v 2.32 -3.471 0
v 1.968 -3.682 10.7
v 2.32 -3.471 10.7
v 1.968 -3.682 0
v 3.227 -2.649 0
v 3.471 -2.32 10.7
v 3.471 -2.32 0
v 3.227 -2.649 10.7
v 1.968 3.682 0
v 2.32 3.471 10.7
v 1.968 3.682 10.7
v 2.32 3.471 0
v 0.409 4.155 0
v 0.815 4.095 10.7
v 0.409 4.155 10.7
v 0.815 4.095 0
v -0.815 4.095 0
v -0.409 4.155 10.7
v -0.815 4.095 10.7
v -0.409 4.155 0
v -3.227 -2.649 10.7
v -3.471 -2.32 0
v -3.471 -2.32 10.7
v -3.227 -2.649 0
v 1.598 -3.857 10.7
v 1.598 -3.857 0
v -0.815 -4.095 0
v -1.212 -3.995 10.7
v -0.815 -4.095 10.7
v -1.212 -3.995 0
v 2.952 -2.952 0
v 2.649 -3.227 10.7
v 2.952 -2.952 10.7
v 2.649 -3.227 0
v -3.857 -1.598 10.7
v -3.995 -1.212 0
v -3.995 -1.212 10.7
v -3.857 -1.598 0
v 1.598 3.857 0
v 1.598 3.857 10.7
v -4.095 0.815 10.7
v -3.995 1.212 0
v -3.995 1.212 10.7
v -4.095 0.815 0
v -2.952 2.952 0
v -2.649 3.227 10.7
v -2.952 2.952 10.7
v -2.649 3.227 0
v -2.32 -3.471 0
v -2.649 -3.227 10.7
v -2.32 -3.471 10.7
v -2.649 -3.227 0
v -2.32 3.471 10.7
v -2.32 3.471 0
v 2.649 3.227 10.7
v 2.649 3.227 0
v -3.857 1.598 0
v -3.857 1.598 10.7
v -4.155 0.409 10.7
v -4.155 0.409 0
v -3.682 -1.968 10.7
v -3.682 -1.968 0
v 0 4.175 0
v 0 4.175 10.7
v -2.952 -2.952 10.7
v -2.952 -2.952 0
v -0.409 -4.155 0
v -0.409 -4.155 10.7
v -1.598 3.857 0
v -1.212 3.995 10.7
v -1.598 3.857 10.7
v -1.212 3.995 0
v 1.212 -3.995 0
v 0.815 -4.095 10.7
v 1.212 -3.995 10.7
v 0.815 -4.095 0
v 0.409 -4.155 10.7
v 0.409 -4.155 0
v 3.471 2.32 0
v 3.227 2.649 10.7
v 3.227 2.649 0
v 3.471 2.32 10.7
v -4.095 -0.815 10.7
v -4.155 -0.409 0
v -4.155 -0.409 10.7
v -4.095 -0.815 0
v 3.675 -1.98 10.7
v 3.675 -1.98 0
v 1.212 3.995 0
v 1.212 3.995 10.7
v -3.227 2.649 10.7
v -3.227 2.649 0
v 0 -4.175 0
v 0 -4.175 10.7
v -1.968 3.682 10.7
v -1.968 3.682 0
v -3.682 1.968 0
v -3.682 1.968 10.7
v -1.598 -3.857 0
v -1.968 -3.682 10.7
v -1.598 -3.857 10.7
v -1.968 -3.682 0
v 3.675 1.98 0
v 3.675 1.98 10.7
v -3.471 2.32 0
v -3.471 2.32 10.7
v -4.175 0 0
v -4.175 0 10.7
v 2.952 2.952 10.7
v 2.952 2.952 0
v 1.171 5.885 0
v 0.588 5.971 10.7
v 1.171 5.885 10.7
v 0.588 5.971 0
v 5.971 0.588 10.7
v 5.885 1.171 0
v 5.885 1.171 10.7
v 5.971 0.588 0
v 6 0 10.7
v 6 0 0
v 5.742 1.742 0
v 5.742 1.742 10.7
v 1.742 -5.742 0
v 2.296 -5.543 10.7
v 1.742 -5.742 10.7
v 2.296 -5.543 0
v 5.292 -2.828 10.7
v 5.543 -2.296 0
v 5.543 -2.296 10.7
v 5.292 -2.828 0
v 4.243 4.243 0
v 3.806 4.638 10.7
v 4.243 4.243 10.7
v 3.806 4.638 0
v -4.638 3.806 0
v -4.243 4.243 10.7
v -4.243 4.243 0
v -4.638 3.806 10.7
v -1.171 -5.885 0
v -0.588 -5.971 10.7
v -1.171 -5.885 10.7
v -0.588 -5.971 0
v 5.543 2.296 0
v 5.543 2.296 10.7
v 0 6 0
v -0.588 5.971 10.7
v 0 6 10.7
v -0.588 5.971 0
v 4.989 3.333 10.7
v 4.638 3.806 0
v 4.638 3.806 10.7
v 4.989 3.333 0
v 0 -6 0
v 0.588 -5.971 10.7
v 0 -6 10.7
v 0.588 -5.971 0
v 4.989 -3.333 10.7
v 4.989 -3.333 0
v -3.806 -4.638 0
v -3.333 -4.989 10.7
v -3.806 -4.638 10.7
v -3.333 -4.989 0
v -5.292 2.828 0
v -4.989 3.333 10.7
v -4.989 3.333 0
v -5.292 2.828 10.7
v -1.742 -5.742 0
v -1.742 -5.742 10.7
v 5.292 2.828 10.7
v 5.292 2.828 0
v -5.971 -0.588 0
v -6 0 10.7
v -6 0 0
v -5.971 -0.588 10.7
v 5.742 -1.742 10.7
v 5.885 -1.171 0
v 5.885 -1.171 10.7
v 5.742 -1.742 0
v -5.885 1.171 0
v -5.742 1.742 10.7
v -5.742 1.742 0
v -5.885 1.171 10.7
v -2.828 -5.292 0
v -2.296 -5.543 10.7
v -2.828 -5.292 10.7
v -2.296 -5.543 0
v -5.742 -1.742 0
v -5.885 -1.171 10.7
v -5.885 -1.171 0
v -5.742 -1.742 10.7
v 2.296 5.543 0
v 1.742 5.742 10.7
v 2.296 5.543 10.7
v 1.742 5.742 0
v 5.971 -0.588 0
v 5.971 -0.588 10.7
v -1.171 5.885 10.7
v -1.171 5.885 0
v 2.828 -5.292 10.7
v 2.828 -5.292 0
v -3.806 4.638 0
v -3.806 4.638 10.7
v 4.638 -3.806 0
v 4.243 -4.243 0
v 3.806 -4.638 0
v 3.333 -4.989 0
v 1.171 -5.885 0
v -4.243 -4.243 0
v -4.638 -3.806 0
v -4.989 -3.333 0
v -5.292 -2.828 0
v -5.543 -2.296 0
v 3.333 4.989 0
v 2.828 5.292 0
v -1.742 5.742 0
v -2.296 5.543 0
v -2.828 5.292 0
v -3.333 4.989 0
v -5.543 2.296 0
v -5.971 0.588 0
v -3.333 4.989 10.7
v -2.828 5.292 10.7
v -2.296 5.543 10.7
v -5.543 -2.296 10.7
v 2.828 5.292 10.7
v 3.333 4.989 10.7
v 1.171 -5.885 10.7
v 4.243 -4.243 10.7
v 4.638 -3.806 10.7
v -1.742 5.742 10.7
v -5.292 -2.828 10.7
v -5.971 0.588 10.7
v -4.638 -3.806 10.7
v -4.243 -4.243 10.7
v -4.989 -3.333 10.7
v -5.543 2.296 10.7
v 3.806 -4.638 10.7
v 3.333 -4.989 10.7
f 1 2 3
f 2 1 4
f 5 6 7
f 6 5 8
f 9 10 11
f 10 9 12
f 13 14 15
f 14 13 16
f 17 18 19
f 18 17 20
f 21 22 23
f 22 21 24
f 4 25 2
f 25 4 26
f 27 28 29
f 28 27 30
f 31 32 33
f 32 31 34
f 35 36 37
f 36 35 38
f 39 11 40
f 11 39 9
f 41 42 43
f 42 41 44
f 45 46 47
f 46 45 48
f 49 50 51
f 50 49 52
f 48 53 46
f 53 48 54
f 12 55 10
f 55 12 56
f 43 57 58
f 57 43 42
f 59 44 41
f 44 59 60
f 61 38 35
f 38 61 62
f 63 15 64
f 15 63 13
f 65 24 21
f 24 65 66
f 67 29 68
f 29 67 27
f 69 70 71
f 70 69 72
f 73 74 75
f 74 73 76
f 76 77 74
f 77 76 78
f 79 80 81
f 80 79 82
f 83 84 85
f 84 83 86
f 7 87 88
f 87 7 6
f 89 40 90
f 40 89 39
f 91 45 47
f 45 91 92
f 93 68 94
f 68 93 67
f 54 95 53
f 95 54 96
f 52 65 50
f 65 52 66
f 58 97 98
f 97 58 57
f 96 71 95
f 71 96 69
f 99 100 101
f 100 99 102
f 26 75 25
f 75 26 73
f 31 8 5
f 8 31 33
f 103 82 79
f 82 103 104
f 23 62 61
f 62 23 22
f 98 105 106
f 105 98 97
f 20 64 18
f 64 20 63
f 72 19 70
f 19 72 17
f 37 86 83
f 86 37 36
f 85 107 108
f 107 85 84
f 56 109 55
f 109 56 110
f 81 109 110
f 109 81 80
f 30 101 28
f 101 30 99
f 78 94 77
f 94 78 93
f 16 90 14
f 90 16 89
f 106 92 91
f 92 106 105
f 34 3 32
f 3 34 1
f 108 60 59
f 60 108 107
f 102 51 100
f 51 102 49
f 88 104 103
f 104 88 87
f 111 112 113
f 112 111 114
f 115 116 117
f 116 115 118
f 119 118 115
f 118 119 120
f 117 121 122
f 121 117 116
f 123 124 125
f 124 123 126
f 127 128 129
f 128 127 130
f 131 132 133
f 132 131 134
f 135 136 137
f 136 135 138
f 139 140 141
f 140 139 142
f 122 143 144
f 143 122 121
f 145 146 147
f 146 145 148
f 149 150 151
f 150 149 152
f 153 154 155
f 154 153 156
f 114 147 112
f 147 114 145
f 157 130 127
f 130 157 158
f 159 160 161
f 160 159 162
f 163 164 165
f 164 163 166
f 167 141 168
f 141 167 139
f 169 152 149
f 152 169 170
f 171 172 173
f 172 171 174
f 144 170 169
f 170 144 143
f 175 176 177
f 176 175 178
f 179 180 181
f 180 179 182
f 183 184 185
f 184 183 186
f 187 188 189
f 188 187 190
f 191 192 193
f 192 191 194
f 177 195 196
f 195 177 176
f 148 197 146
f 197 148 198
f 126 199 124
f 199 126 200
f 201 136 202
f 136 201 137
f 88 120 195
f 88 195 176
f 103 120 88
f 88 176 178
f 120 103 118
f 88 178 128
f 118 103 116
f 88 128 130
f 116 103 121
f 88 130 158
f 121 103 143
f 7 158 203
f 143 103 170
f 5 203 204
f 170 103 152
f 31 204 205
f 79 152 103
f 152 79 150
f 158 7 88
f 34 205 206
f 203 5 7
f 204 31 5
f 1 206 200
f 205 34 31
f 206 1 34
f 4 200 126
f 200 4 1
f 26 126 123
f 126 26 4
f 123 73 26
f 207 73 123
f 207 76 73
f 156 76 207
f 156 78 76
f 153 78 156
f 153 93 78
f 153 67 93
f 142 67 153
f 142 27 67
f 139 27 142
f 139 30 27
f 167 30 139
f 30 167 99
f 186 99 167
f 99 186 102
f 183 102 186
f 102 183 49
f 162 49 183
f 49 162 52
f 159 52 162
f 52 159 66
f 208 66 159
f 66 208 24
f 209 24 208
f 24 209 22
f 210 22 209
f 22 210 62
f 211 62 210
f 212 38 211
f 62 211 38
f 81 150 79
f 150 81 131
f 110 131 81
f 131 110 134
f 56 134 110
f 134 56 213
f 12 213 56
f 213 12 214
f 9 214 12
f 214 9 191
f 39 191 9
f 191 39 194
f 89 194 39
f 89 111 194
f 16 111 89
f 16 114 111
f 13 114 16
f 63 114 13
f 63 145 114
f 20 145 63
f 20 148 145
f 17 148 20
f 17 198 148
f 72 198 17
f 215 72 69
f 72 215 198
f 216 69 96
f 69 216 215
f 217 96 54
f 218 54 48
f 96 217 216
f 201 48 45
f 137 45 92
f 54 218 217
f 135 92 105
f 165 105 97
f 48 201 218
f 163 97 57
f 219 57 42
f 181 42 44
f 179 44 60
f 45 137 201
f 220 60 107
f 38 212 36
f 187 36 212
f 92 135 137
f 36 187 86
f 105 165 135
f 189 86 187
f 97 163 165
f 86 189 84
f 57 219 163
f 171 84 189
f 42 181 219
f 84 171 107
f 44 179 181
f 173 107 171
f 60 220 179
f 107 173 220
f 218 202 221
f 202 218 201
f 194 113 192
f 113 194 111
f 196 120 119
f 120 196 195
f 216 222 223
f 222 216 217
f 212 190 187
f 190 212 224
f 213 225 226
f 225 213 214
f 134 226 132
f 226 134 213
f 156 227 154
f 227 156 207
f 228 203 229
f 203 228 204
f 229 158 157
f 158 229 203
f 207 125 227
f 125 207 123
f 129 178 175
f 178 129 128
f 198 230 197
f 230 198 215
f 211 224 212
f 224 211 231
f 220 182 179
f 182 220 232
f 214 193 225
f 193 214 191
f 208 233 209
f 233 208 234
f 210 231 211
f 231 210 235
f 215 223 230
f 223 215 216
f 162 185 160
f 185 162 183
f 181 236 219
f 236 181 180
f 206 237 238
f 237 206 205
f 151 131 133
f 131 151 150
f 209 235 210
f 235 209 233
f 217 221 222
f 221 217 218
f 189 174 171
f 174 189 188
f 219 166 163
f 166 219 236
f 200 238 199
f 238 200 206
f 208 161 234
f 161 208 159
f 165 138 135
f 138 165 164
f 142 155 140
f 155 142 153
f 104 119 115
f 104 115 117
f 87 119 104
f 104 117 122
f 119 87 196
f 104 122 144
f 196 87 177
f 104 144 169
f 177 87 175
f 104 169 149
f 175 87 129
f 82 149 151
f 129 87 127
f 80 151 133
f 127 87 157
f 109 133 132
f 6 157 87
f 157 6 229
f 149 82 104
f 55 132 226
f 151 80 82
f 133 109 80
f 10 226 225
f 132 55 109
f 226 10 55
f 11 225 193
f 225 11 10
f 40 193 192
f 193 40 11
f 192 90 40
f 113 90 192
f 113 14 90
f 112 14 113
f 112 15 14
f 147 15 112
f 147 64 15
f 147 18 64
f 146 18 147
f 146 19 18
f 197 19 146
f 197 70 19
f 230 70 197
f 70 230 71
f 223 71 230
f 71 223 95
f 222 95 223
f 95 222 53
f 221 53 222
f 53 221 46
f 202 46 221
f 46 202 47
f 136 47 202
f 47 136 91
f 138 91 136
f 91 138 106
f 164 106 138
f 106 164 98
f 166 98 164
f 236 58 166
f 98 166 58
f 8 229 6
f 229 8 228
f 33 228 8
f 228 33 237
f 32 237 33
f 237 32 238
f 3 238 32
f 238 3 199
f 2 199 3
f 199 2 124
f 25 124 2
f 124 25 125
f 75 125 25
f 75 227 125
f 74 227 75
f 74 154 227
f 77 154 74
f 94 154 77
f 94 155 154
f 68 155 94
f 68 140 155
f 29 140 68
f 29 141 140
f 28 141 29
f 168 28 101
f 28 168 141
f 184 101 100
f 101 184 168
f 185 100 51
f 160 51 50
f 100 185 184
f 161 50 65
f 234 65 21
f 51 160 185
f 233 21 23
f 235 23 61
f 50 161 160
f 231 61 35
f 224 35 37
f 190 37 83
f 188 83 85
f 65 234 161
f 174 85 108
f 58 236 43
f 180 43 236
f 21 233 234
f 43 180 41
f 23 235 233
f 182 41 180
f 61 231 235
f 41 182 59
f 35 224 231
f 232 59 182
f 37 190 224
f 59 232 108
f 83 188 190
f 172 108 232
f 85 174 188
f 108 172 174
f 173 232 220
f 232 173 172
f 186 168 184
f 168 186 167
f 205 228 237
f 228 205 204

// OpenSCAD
// file: parameters.scad
// =============================================================================
// Gen-BO — nightly 2026-10-07 (physics_scorer, honest magpylib watts)
// Flush seat + wider copper + tight assists: the magnets sit on the steel in 5.00 mm through-pockets (carrier = magnet height, recess 0 instead of 0.10 mm), so the magnet faces are 0.2 mm closer while still exactly 0.50 mm from the wound envelope; the bobbin lip beyond the copper is trimmed 1.0 → 0.8 mm (still the 0.8 mm wall minimum, stator web still 1.2 mm), which widens each copper sector by ~0.6° on 28–70 mm × 18.0 mm-build bobbins; and the diametric Ø5 assists are pulled in to R43/50/57 (±7 mm) where they add most flux under the copper. Same Ø134 × 4.76 mm steel discs as Gen-BL.
// Clocking 0 deg (magnets N facing S) + D-flat keyed bore + index notch + flip-symmetric hole map.
// Windable 2-piece bobbin; turns = physics_scorer turns_fit; copper only between flanges.
// Steel back-iron: 2× Ø134 × 4.76 mm (3/16") mild-steel discs (steel_backiron_disc.dxf); magnets sit ON the steel
// (through-pockets) -> score with --back-iron.
// =============================================================================
topology            = "dual_rotor";

// --- Wire / winding (physics_scorer winding-fit) -------------------------------
wire_awg            = 26;
wire_od             = 0.45;     // insulated OD mm (bare 0.405)
fill_realistic      = 0.65;     // insulated-wire area / window (DENSE layered wind with a jig; scorer cap 0.65)
turns               = 595;       // = physics_scorer turns_fit (do NOT raise)
coil_former_type    = "bobbin";
coil_core_inset     = 18.00;     // radial copper build: hub = copper boundary inset by this
wind_build_axial    = 0.0;      // nothing proud of the flanges
wind_build_radial   = 0.0;

// --- Bobbin (base + lid) ---------------------------------------------------------
coil_id_r           = 28.00;    // copper boundary sector
coil_od_r           = 70.00;
span_deg            = 53.24;    // = pitch - 2*asin((wall+0.85)/coil_id_r) -> >=1.2 mm stator web
former_web          = 8.10;     // copper height between flanges (TALL copper: steel keeps Bz up)
flange_t            = 0.80;     // >= 0.8 mm FDM wall rule (tall winds push on the flanges)
wall                = 0.80;     // flange lip beyond copper
former_bare_h       = former_web + 2 * flange_t;
coil_envelope_h     = former_bare_h + 2 * wind_build_axial;
tab_w               = 7.0;
tab_len             = 7.0;
tab_h               = former_bare_h / 2;
pin_d               = 1.9;      // 1.75 mm filament locating pin
coil_mount_r        = coil_od_r + 0.2 + 4.0;
lead_y              = 1.6;
lead_slot_w         = 0.9;
lead_groove_d       = 0.6;

// --- Gap -------------------------------------------------------------------------
run_clear           = 0.50;     // rotor face -> flange
gap_spacer_h        = run_clear + wind_build_axial;
m2m                 = coil_envelope_h + 2 * run_clear;   // rotor face to rotor face (= gap_sleeve length)

// --- Stator ----------------------------------------------------------------------
coil_stations       = 6;
bay_clear           = 0.25;
stator_thick        = former_bare_h;                        // bobbins flush both faces
stator_od           = 158;
shaft_clear_stator  = 14.0;     // stator is static; gap sleeve OD 12 spins inside

// --- Rotor(s) --------------------------------------------------------------------
magnet_Br           = 1.43;     // N52
magnet_d_large      = 20.0;
magnet_h_large      = 5.0;      // one O20x5 per pocket
magnet_h_small      = 5.0;      // one O5x5 per pocket
halbach_magnetisation = "diametric"; // O5x5 assist magnets MUST be DIAMETRICALLY magnetised (tangential)
rotor_b_same_axis   = true;     // same-index magnets share one axis: N faces S across the gap
large_pocket_d      = 20.3;
small_pocket_d      = 5.3;
pocket_h            = 5.00;     // THROUGH the carrier: magnet back face sits on the steel disc (FLUSH seat: carrier = magnet height, magnet face level with the rotor face)
large_n             = 8;
R_large             = 50.0;
R_small_inner       = 43.0;
R_small_mid         = 50.0;
R_small_outer       = 57.0;
small_r_list        = [R_small_inner, R_small_mid, R_small_outer];   // O5 pockets between poles
carrier_od          = 134.0;
carrier_thick       = pocket_h;
hub_h               = 12.0;     // > steel_t + insert: radial set-screw clears the steel
hub_od              = 24.0;     // slim hub so the M4 brace rods fit at R~18 inside the coil ring
hub_insert_d        = 4.0;      // M3 heat-set insert, radial, bears on the D-flat
rotor_b_offset_deg  = 0.0;      // CLOCKING: magnets directly opposite
shaft_key           = "dflat";
dflat_depth         = 0.5;      // 8 mm shaft with 0.5 mm flat (7.5 across flat)
index_notch_d       = 3.0;

// --- Steel back-iron (buyable laser-cut) -------------------------------------------
steel_t             = 4.76;      // mild steel thickness (image method ignores it; sized from steel_flux.py so the return path stays well below saturation)
steel_center_hole   = 26.0;     // slips over the rotor hub (OD 24)
steel_od            = carrier_od;   // steel disc OD = rotor carrier OD

// --- Modular MAX interface ----------------------------------------------------------
shaft_bore          = 8.35;
dflat_x             = 4.0 - dflat_depth + (shaft_bore - 8.0) / 2;
bearing_d           = 21.85;
bearing_h           = 7.2;
m3_clear            = 3.5;
bolt_r_inner        = 30.0;     // M3 steel-disc clamp bolts (inside the magnet ring)
bolt_n_inner        = 4;
bolt_inner_angles   = [0, 90, 180, 270];
bolt_r_outer        = 63.0;     // M3 steel-disc clamp bolts (outside the magnet ring)
bolt_outer_angles   = [45, 135, 225, 315];
flange_bolt_r       = 73.0;     // frame rods: OUTSIDE the rotor OD (rotors spin inside them)
flange_bolt_n       = 6;
flange_bolt_offset  = 30.00;    // between coil stations -> never cuts a lead groove/tab
brace_r             = 18.0;
brace_d             = 4.3;      // temporary M4 jack rods (assembly only)
brace_n             = 4;
brace_angles        = [45, 135, 225, 315];          // flip-symmetric

spacer_pad_od       = 14.0;
spacer_pad_id       = m3_clear;
endbell_od          = 158;
endbell_thick       = 8.0;
endbell_shaft_clear = 10.0;
collar_h            = 10.0;
standoff_od         = 9.0;
frame_standoff_h    = run_clear + carrier_thick + hub_h + collar_h + 2.0;
sleeve_od           = 12.0;
plate_max_mm        = 410;

$fn = 64;
// main file
// Gen-BO — gap sleeve: rigid spacer on the shaft BETWEEN the two rotor carriers (passes through the stator
// hole). Length = m2m, so it sets the magnet gap and carries the full magnet pull. Print x1, upright.
include <parameters.scad>;
$fn = 64;
// D-flat keyed bore: flat faces +X (angle 0 = magnet pocket 0 = index notch)
module dflat_bore(h) {
    intersection() {
        cylinder(d=shaft_bore, h=h);
        translate([-shaft_bore, -shaft_bore, 0]) cube([shaft_bore + dflat_x, 2*shaft_bore, h]);
    }
}

difference() {
    cylinder(d=sleeve_od, h=m2m);
    translate([0, 0, -0.1]) dflat_bore(m2m + 0.2);
}
